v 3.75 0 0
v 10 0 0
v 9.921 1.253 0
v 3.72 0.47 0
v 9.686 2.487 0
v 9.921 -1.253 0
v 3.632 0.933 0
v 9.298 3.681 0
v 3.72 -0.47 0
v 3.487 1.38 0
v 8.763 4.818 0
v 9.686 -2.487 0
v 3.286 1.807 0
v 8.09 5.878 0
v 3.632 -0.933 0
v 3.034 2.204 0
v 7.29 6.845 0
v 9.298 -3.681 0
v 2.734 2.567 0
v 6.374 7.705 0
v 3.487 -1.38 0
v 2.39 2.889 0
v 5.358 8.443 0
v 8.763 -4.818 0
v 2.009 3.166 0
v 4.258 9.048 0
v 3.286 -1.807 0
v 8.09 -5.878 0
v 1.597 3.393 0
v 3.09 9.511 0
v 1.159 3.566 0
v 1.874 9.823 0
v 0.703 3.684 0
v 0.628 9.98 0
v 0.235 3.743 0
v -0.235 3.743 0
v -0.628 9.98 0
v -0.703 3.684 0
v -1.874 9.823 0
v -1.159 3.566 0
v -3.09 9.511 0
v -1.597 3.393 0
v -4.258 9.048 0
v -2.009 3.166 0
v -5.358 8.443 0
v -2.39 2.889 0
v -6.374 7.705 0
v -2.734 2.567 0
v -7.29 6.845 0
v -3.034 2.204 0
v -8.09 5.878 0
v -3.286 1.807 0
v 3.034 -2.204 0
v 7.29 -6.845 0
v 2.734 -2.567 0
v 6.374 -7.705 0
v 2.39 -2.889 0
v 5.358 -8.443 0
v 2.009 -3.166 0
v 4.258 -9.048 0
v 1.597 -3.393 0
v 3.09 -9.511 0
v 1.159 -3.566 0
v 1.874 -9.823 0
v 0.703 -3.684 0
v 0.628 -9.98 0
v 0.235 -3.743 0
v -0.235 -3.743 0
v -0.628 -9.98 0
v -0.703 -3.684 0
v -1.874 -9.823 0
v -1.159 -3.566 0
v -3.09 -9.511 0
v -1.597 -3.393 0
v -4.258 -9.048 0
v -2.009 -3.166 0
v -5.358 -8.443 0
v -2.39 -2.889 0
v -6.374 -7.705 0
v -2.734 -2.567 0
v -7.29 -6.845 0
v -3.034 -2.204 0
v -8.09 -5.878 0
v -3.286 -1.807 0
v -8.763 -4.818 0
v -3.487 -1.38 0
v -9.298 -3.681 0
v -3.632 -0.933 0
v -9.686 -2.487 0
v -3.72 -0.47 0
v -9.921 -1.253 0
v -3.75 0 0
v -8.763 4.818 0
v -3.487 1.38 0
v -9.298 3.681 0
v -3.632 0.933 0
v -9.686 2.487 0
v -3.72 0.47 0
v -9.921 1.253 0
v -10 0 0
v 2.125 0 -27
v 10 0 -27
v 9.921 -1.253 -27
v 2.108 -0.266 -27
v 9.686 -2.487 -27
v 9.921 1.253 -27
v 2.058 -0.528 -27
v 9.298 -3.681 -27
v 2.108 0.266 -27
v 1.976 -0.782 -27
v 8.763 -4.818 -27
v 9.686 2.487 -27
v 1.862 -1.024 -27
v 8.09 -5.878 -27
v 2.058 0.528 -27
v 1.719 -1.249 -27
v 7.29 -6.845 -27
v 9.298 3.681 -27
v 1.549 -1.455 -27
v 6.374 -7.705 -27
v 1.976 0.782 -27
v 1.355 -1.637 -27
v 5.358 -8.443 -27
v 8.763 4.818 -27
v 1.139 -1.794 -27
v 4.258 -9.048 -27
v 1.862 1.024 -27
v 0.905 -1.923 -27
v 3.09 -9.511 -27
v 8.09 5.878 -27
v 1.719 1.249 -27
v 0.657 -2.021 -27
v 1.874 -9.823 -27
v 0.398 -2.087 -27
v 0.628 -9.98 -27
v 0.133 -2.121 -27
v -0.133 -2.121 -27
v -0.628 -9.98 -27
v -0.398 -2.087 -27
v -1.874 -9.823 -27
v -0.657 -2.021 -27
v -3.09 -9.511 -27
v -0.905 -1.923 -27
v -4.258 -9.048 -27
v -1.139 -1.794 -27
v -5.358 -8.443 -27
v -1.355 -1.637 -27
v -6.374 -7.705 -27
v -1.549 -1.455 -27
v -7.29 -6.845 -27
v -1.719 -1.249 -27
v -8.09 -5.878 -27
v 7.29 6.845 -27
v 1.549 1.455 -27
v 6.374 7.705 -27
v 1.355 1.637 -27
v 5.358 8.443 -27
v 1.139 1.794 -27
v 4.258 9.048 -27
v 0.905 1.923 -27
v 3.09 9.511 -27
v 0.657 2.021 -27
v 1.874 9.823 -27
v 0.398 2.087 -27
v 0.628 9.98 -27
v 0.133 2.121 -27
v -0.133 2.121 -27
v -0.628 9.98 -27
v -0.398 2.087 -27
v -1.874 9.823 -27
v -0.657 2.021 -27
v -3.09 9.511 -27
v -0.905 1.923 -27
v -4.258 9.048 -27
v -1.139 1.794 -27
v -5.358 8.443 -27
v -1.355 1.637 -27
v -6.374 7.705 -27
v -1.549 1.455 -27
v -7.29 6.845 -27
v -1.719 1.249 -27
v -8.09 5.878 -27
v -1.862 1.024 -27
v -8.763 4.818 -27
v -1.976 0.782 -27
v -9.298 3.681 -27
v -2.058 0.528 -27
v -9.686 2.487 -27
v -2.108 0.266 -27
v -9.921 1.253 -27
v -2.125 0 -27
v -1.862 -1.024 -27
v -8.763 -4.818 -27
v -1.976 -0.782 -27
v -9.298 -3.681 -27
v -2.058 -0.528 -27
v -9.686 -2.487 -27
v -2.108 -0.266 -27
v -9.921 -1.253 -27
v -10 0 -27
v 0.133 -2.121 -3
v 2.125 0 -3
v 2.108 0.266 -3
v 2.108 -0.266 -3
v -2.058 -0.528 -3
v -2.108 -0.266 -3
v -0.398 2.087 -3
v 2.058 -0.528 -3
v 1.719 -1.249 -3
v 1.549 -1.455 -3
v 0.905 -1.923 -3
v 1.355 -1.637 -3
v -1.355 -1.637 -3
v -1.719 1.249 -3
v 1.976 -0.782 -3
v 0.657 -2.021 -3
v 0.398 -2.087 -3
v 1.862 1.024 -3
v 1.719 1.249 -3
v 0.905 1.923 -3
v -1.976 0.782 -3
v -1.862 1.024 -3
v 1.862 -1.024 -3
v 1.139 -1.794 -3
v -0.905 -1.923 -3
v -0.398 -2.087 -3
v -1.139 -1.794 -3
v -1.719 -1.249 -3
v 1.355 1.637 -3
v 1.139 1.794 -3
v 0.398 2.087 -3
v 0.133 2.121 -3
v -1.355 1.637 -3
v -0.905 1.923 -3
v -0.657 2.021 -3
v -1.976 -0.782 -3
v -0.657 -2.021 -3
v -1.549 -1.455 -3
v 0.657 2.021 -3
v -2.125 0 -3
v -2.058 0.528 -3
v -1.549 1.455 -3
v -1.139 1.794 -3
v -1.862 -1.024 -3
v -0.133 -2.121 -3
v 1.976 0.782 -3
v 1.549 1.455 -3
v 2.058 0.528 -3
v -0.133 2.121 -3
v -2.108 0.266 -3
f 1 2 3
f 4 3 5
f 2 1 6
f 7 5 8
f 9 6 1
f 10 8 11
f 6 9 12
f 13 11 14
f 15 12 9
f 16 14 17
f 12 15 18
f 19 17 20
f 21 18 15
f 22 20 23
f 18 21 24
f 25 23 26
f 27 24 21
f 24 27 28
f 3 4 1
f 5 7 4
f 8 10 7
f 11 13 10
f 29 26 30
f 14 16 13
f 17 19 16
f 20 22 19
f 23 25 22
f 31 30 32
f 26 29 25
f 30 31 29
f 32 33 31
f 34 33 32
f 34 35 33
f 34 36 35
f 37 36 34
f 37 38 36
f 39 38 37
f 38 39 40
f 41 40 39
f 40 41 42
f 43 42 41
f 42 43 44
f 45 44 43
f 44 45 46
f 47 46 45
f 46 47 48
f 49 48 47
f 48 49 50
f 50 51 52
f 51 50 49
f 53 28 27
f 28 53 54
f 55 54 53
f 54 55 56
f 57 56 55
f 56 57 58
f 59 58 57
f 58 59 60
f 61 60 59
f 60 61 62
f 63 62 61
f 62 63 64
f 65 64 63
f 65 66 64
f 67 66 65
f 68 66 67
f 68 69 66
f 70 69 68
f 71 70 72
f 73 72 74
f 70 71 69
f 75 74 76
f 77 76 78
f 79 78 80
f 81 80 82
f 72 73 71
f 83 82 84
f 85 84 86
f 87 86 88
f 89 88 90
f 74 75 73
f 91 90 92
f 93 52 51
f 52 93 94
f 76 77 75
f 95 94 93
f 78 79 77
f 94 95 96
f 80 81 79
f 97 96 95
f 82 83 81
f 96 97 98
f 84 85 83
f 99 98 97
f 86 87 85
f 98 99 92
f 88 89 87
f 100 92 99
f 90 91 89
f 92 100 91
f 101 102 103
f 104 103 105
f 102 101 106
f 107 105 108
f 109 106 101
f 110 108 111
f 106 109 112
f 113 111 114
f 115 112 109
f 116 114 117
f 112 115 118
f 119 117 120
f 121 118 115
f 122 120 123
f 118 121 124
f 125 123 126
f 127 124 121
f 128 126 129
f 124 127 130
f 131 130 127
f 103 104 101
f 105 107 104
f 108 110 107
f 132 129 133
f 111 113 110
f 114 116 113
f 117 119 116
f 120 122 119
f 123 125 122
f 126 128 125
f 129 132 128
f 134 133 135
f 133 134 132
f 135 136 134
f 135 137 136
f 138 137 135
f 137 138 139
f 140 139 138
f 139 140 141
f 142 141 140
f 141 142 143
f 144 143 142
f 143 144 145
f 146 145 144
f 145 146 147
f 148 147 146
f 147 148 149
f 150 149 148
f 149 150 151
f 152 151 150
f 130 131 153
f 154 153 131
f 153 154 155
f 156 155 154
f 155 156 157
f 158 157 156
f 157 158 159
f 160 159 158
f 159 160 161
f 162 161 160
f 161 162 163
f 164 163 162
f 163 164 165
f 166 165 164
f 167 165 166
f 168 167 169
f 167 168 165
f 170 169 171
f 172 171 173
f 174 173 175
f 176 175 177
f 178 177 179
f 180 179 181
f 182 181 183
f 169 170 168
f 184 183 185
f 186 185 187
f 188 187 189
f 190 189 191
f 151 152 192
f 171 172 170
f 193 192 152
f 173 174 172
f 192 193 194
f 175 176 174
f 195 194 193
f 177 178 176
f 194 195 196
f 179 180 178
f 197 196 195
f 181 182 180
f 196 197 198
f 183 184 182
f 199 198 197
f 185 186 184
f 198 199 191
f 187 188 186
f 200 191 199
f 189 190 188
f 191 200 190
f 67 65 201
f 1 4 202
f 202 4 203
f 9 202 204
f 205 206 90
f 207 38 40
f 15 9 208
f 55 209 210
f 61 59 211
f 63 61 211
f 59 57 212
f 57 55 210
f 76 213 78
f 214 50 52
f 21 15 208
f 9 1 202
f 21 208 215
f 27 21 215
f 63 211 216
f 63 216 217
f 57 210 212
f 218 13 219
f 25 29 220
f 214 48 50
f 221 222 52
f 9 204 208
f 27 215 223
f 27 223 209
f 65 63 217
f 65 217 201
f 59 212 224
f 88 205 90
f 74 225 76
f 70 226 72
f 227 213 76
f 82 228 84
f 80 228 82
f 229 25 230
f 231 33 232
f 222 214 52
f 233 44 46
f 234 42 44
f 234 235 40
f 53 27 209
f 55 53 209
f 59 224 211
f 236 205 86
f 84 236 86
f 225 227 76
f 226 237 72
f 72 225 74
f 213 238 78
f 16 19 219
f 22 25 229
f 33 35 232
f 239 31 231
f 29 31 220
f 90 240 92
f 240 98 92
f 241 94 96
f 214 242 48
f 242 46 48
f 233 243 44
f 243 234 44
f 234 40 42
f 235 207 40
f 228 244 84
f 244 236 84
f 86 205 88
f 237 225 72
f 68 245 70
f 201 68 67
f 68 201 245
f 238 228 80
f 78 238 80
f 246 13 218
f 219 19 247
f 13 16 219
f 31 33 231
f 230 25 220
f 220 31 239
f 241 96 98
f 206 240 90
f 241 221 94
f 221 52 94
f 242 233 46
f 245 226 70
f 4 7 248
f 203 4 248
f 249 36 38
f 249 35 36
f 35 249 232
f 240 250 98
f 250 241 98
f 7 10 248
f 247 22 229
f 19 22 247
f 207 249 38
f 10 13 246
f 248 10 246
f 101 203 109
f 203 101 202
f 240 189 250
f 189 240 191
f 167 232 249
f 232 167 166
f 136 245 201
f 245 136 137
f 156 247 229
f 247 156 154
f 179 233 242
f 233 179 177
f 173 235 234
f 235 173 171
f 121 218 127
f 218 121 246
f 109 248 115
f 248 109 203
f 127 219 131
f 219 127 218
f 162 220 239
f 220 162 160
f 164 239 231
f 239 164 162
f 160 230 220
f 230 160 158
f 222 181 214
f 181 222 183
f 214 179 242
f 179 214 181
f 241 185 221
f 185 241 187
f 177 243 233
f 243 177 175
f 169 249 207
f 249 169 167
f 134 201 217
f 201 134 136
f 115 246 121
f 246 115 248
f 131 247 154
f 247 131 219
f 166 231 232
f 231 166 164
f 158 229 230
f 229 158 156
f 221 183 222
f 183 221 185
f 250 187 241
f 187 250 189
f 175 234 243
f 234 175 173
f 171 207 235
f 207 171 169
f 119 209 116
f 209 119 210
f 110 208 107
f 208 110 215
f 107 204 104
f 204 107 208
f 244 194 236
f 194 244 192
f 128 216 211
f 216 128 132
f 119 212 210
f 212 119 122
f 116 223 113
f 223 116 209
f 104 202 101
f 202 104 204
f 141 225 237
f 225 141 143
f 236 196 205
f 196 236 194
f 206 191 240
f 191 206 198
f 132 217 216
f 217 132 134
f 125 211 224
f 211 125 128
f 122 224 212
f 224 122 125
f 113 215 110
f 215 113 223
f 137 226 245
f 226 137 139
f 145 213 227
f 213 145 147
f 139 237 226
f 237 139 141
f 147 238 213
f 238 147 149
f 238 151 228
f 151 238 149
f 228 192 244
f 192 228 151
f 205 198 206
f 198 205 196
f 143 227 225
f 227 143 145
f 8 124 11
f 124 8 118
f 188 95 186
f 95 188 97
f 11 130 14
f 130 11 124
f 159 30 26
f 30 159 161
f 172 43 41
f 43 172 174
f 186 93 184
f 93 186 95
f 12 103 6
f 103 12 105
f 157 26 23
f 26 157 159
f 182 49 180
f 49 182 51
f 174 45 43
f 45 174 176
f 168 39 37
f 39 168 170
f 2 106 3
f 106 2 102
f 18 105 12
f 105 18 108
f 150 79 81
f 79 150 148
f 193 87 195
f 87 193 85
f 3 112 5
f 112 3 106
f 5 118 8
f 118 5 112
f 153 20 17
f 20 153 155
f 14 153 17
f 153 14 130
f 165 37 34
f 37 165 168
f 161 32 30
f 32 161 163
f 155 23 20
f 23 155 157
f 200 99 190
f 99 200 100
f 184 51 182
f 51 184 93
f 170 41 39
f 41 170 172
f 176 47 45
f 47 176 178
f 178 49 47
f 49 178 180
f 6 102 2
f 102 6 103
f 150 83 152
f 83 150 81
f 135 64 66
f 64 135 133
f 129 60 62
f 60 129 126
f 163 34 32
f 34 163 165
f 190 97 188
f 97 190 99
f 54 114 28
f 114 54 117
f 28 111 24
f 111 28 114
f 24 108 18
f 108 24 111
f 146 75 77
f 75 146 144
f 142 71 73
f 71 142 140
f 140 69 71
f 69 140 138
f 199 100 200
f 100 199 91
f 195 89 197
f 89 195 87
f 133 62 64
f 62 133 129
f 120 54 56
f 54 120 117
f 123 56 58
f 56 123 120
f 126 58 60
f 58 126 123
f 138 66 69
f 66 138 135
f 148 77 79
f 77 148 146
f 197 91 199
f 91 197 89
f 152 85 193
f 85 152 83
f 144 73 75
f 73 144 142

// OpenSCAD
$fn = 50;


difference() {
	union() {
		translate(v = [0, 0, -27.0000000000]) {
			cylinder(h = 27, r = 10.0000000000);
		}
		cylinder(h = 0, r = 13.0000000000);
	}
	union() {
		translate(v = [0, 0, 0]) {
			rotate(a = [0, 0, 0]) {
				difference() {
					union() {
						#translate(v = [0, 0, -27.0000000000]) {
							cylinder(h = 27, r = 2.0000000000);
						}
						#translate(v = [0, 0, -3]) {
							cylinder(h = 3, r = 10.0000000000, r1 = 2.1250000000, r2 = 3.7500000000);
						}
						#translate(v = [0, 0, -27.0000000000]) {
							cylinder(h = 27, r = 2.1250000000);
						}
						#translate(v = [0, 0, -27.0000000000]) {
							cylinder(h = 27, r = 2.0000000000);
						}
					}
					union();
				}
			}
		}
	}
}
